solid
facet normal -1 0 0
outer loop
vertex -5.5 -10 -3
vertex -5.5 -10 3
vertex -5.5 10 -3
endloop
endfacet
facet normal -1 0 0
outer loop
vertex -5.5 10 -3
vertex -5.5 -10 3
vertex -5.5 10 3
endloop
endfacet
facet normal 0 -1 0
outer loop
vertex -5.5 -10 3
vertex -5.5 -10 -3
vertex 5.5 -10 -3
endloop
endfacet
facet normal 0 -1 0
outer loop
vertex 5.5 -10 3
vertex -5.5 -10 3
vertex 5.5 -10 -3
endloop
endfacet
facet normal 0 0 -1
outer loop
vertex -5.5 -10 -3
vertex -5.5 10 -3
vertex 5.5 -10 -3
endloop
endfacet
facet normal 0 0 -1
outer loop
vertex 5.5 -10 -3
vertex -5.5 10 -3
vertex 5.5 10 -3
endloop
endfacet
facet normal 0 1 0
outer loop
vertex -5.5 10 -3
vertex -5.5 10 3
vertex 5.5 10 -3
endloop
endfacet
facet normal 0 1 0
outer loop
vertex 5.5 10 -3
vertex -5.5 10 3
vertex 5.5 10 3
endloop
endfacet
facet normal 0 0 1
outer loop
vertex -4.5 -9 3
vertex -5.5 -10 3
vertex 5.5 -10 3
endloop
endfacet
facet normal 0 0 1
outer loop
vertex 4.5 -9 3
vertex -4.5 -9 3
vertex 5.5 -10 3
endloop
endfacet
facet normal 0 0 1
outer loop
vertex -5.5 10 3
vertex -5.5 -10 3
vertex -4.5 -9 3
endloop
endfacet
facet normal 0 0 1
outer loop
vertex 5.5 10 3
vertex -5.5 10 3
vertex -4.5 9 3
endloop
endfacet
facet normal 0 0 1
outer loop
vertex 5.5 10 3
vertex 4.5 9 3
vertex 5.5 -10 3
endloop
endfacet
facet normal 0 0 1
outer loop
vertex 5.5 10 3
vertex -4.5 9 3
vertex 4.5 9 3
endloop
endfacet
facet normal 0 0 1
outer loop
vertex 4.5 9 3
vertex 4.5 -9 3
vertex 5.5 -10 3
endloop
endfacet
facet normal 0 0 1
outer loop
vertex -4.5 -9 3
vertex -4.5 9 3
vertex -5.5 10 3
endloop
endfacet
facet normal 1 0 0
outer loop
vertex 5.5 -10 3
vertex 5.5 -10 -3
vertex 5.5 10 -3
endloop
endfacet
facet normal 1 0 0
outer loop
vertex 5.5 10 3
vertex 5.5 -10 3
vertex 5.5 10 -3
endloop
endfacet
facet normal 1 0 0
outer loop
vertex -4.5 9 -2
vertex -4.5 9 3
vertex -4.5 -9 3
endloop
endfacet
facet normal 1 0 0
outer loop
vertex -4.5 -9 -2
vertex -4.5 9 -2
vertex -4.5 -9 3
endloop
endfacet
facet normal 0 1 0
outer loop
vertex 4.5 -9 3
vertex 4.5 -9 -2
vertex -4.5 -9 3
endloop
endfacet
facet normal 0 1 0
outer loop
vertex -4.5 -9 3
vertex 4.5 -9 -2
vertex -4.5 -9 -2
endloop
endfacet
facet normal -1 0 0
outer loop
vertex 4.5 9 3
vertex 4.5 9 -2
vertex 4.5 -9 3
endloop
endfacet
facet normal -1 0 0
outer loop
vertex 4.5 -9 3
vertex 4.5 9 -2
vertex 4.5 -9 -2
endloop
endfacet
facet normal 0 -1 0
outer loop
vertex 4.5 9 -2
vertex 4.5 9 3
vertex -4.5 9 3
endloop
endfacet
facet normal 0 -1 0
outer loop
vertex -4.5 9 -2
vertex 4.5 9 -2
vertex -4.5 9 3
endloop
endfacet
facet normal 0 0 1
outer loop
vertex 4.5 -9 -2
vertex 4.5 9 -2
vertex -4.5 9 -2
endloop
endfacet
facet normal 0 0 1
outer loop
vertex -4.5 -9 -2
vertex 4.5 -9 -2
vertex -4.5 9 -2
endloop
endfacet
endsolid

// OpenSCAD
difference()
{
	cube([11,20,6],true);
	translate([0,0,1])
	cube([9,18,6],true);
}
